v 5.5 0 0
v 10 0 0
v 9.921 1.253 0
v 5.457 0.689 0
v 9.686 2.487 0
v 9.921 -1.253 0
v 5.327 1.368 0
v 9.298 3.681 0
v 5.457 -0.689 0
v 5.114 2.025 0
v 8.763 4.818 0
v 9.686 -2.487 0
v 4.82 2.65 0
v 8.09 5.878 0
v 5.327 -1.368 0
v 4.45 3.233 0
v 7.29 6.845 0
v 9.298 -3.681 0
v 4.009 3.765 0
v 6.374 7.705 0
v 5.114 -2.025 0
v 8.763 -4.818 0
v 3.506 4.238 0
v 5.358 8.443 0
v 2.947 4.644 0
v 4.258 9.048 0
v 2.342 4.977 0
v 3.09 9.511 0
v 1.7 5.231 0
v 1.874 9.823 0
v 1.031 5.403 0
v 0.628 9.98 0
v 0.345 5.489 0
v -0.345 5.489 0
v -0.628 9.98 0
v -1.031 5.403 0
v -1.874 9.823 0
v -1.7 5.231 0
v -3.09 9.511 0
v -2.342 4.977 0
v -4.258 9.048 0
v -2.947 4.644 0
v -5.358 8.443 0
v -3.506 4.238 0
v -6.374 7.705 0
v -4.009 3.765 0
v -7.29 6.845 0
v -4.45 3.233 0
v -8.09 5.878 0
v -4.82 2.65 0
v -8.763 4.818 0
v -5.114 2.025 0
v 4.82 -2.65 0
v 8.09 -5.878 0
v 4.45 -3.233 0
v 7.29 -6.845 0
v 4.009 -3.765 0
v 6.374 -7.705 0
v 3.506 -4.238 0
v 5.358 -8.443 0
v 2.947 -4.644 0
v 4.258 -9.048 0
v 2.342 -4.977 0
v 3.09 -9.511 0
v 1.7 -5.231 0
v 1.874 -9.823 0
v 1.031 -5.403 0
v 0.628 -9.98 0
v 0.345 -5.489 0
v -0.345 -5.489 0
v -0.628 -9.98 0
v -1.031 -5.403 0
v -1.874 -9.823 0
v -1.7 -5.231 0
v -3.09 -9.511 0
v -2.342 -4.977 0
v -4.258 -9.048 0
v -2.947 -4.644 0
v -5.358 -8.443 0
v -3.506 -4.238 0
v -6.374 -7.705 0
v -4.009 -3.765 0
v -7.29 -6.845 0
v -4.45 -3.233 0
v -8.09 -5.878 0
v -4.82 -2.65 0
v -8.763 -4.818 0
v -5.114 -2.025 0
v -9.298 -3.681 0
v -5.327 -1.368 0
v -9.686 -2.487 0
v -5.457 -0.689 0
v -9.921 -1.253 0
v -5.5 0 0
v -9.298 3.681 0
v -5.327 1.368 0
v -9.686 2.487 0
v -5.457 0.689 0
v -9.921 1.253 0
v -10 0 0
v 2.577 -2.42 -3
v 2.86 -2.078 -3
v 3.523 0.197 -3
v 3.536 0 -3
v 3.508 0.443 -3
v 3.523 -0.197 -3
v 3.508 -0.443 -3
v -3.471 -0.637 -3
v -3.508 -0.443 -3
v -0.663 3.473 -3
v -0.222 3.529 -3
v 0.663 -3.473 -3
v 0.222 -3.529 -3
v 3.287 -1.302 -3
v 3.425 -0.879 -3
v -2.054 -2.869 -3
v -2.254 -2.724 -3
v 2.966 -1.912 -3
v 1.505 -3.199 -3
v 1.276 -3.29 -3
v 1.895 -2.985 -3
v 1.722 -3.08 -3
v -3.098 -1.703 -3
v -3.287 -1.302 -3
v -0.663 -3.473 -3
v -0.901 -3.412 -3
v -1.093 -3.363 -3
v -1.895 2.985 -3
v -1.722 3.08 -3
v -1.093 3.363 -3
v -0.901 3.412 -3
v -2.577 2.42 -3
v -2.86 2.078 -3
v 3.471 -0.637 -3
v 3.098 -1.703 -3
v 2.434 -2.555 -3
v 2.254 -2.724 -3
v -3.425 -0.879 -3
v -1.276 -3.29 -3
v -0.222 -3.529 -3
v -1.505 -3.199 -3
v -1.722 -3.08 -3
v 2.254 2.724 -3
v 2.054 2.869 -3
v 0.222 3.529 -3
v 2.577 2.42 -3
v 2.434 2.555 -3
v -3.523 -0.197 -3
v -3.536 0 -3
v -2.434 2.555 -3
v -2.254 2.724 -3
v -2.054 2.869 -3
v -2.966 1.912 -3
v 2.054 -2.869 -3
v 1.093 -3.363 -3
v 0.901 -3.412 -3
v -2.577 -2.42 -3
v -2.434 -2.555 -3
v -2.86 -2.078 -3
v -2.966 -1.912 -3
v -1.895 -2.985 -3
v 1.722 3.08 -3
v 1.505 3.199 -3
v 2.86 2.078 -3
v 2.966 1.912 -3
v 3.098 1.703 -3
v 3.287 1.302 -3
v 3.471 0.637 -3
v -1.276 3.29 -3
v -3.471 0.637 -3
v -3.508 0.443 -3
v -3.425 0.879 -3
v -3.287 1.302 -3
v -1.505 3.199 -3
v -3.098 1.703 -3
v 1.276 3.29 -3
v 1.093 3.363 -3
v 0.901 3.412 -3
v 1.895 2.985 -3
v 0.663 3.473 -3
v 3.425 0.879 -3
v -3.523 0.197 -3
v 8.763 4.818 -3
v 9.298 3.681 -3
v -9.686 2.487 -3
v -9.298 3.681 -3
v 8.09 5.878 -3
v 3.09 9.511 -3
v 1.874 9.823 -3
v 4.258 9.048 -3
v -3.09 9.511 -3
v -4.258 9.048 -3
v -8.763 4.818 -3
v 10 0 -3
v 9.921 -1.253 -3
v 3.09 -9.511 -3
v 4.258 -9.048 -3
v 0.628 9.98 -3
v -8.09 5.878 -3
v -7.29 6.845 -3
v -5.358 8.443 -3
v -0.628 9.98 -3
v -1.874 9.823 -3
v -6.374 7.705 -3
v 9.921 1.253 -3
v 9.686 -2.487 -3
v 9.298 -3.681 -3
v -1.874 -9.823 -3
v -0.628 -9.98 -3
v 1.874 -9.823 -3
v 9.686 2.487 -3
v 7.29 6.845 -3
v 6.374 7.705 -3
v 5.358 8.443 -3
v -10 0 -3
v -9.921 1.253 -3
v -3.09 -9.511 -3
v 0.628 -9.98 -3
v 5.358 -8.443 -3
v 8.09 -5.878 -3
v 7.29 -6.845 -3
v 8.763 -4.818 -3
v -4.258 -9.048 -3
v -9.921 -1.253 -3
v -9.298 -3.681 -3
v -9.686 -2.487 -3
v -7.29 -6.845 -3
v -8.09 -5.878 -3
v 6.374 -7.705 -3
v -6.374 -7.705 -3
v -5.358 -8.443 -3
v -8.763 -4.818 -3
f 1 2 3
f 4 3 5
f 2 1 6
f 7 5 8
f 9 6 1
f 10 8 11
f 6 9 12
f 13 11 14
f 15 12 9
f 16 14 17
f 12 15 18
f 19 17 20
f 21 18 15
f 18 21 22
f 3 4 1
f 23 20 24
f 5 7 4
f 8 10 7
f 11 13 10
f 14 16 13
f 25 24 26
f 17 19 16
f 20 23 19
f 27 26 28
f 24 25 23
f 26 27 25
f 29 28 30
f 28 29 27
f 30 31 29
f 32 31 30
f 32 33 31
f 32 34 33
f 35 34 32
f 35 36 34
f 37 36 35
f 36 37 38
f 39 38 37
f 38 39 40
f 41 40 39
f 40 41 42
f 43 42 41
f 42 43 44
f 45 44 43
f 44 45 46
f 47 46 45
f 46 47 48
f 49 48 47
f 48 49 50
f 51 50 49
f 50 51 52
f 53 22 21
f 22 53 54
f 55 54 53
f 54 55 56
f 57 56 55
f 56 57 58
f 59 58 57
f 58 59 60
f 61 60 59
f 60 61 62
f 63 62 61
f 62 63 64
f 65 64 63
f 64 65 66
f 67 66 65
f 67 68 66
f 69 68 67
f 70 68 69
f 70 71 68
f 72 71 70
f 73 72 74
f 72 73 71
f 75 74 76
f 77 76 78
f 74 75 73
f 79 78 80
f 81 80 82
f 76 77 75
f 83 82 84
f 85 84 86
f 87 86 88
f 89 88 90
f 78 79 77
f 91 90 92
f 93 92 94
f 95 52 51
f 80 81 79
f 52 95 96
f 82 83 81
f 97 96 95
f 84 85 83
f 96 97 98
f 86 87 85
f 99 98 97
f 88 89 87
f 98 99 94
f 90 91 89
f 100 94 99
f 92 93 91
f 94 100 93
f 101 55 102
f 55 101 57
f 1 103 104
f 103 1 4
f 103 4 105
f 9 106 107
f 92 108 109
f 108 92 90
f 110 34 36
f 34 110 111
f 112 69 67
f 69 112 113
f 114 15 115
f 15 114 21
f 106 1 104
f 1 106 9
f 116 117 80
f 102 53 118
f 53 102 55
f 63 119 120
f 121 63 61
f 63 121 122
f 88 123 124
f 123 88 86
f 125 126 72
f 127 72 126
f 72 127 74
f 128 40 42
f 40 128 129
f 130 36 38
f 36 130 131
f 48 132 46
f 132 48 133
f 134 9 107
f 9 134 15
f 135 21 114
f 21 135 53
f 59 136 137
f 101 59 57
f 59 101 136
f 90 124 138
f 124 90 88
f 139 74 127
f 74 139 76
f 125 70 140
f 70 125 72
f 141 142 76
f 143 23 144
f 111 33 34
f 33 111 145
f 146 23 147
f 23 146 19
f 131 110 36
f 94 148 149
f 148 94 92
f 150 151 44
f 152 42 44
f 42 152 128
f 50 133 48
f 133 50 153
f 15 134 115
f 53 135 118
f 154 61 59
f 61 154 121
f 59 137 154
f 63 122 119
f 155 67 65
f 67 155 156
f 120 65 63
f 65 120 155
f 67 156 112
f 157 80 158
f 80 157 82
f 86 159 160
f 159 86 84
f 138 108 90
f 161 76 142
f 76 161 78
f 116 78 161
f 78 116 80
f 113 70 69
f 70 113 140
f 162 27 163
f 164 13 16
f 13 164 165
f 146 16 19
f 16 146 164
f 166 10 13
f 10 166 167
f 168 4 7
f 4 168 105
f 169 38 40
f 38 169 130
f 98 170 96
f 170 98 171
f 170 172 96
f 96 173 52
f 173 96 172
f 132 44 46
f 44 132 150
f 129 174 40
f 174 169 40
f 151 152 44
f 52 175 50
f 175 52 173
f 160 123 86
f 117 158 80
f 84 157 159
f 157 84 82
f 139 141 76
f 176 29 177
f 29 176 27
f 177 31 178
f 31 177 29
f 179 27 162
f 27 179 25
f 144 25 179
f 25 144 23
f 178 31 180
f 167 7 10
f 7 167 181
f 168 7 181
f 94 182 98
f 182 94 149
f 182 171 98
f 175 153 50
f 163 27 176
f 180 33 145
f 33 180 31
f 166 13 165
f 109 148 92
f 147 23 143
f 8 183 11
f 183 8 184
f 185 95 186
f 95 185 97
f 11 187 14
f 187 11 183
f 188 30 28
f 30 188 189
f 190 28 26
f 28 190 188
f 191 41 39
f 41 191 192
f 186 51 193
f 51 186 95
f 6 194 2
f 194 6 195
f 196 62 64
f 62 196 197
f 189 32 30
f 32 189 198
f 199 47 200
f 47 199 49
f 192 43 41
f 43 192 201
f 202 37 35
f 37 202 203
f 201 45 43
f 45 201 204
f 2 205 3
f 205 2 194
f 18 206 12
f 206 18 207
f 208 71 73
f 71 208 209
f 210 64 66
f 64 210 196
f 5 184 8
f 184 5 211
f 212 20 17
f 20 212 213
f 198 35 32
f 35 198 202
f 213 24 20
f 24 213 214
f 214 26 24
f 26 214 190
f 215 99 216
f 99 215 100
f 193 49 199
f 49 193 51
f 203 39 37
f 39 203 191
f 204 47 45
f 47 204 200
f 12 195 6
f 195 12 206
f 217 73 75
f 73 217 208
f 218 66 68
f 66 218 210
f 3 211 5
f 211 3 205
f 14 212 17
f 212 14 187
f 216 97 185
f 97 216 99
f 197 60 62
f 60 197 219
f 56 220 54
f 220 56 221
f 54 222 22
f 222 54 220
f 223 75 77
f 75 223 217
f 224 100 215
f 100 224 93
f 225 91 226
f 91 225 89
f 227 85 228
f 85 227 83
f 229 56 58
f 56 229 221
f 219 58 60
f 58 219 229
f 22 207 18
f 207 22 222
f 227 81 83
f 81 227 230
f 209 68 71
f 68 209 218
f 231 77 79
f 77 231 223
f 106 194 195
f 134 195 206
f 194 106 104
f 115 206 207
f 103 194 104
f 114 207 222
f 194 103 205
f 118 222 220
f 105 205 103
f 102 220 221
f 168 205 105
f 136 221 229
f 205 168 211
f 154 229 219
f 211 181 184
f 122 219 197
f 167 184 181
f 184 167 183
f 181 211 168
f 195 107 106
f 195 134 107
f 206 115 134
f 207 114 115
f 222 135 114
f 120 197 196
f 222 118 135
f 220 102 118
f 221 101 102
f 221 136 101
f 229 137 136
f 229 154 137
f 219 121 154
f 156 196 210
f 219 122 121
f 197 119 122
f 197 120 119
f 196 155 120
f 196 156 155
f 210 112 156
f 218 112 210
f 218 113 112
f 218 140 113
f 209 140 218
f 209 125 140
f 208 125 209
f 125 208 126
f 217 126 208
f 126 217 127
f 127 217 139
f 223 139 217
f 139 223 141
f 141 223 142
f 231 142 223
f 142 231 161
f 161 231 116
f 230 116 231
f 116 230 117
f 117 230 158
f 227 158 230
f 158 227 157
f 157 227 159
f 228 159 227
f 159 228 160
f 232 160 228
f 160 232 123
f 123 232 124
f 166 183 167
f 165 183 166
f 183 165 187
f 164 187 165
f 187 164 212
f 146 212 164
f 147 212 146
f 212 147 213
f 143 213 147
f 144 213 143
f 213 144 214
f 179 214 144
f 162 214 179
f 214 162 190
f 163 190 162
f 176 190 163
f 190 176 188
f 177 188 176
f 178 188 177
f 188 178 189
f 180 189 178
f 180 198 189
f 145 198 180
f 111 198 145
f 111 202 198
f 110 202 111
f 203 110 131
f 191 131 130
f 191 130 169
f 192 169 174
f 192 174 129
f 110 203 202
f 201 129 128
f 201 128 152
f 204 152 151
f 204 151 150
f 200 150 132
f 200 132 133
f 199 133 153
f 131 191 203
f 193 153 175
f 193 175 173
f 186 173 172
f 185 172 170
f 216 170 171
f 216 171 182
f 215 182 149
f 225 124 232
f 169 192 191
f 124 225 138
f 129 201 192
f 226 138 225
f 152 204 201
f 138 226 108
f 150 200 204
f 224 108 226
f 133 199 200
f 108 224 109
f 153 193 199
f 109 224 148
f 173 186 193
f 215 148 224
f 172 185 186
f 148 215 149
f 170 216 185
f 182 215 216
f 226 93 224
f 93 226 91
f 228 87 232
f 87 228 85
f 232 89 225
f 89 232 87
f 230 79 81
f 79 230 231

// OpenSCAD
$fn = 50;


difference() {
	union() {
		translate(v = [0, 0, -3.0000000000]) {
			cylinder(h = 3, r = 10.0000000000);
		}
		cylinder(h = 0, r = 13.0000000000);
	}
	union() {
		translate(v = [0, 0, 0]) {
			rotate(a = [0, 0, 0]) {
				difference() {
					union() {
						#translate(v = [0, 0, -3.0000000000]) {
							cylinder(h = 3, r = 2.2500000000);
						}
						#translate(v = [0, 0, -4.2000000000]) {
							cylinder(h = 4.2000000000, r = 10.0000000000, r1 = 2.7500000000, r2 = 5.5000000000);
						}
						#translate(v = [0, 0, -3.0000000000]) {
							cylinder(h = 3, r = 2.7500000000);
						}
						#translate(v = [0, 0, -3.0000000000]) {
							cylinder(h = 3, r = 2.2500000000);
						}
					}
					union();
				}
			}
		}
	}
}
